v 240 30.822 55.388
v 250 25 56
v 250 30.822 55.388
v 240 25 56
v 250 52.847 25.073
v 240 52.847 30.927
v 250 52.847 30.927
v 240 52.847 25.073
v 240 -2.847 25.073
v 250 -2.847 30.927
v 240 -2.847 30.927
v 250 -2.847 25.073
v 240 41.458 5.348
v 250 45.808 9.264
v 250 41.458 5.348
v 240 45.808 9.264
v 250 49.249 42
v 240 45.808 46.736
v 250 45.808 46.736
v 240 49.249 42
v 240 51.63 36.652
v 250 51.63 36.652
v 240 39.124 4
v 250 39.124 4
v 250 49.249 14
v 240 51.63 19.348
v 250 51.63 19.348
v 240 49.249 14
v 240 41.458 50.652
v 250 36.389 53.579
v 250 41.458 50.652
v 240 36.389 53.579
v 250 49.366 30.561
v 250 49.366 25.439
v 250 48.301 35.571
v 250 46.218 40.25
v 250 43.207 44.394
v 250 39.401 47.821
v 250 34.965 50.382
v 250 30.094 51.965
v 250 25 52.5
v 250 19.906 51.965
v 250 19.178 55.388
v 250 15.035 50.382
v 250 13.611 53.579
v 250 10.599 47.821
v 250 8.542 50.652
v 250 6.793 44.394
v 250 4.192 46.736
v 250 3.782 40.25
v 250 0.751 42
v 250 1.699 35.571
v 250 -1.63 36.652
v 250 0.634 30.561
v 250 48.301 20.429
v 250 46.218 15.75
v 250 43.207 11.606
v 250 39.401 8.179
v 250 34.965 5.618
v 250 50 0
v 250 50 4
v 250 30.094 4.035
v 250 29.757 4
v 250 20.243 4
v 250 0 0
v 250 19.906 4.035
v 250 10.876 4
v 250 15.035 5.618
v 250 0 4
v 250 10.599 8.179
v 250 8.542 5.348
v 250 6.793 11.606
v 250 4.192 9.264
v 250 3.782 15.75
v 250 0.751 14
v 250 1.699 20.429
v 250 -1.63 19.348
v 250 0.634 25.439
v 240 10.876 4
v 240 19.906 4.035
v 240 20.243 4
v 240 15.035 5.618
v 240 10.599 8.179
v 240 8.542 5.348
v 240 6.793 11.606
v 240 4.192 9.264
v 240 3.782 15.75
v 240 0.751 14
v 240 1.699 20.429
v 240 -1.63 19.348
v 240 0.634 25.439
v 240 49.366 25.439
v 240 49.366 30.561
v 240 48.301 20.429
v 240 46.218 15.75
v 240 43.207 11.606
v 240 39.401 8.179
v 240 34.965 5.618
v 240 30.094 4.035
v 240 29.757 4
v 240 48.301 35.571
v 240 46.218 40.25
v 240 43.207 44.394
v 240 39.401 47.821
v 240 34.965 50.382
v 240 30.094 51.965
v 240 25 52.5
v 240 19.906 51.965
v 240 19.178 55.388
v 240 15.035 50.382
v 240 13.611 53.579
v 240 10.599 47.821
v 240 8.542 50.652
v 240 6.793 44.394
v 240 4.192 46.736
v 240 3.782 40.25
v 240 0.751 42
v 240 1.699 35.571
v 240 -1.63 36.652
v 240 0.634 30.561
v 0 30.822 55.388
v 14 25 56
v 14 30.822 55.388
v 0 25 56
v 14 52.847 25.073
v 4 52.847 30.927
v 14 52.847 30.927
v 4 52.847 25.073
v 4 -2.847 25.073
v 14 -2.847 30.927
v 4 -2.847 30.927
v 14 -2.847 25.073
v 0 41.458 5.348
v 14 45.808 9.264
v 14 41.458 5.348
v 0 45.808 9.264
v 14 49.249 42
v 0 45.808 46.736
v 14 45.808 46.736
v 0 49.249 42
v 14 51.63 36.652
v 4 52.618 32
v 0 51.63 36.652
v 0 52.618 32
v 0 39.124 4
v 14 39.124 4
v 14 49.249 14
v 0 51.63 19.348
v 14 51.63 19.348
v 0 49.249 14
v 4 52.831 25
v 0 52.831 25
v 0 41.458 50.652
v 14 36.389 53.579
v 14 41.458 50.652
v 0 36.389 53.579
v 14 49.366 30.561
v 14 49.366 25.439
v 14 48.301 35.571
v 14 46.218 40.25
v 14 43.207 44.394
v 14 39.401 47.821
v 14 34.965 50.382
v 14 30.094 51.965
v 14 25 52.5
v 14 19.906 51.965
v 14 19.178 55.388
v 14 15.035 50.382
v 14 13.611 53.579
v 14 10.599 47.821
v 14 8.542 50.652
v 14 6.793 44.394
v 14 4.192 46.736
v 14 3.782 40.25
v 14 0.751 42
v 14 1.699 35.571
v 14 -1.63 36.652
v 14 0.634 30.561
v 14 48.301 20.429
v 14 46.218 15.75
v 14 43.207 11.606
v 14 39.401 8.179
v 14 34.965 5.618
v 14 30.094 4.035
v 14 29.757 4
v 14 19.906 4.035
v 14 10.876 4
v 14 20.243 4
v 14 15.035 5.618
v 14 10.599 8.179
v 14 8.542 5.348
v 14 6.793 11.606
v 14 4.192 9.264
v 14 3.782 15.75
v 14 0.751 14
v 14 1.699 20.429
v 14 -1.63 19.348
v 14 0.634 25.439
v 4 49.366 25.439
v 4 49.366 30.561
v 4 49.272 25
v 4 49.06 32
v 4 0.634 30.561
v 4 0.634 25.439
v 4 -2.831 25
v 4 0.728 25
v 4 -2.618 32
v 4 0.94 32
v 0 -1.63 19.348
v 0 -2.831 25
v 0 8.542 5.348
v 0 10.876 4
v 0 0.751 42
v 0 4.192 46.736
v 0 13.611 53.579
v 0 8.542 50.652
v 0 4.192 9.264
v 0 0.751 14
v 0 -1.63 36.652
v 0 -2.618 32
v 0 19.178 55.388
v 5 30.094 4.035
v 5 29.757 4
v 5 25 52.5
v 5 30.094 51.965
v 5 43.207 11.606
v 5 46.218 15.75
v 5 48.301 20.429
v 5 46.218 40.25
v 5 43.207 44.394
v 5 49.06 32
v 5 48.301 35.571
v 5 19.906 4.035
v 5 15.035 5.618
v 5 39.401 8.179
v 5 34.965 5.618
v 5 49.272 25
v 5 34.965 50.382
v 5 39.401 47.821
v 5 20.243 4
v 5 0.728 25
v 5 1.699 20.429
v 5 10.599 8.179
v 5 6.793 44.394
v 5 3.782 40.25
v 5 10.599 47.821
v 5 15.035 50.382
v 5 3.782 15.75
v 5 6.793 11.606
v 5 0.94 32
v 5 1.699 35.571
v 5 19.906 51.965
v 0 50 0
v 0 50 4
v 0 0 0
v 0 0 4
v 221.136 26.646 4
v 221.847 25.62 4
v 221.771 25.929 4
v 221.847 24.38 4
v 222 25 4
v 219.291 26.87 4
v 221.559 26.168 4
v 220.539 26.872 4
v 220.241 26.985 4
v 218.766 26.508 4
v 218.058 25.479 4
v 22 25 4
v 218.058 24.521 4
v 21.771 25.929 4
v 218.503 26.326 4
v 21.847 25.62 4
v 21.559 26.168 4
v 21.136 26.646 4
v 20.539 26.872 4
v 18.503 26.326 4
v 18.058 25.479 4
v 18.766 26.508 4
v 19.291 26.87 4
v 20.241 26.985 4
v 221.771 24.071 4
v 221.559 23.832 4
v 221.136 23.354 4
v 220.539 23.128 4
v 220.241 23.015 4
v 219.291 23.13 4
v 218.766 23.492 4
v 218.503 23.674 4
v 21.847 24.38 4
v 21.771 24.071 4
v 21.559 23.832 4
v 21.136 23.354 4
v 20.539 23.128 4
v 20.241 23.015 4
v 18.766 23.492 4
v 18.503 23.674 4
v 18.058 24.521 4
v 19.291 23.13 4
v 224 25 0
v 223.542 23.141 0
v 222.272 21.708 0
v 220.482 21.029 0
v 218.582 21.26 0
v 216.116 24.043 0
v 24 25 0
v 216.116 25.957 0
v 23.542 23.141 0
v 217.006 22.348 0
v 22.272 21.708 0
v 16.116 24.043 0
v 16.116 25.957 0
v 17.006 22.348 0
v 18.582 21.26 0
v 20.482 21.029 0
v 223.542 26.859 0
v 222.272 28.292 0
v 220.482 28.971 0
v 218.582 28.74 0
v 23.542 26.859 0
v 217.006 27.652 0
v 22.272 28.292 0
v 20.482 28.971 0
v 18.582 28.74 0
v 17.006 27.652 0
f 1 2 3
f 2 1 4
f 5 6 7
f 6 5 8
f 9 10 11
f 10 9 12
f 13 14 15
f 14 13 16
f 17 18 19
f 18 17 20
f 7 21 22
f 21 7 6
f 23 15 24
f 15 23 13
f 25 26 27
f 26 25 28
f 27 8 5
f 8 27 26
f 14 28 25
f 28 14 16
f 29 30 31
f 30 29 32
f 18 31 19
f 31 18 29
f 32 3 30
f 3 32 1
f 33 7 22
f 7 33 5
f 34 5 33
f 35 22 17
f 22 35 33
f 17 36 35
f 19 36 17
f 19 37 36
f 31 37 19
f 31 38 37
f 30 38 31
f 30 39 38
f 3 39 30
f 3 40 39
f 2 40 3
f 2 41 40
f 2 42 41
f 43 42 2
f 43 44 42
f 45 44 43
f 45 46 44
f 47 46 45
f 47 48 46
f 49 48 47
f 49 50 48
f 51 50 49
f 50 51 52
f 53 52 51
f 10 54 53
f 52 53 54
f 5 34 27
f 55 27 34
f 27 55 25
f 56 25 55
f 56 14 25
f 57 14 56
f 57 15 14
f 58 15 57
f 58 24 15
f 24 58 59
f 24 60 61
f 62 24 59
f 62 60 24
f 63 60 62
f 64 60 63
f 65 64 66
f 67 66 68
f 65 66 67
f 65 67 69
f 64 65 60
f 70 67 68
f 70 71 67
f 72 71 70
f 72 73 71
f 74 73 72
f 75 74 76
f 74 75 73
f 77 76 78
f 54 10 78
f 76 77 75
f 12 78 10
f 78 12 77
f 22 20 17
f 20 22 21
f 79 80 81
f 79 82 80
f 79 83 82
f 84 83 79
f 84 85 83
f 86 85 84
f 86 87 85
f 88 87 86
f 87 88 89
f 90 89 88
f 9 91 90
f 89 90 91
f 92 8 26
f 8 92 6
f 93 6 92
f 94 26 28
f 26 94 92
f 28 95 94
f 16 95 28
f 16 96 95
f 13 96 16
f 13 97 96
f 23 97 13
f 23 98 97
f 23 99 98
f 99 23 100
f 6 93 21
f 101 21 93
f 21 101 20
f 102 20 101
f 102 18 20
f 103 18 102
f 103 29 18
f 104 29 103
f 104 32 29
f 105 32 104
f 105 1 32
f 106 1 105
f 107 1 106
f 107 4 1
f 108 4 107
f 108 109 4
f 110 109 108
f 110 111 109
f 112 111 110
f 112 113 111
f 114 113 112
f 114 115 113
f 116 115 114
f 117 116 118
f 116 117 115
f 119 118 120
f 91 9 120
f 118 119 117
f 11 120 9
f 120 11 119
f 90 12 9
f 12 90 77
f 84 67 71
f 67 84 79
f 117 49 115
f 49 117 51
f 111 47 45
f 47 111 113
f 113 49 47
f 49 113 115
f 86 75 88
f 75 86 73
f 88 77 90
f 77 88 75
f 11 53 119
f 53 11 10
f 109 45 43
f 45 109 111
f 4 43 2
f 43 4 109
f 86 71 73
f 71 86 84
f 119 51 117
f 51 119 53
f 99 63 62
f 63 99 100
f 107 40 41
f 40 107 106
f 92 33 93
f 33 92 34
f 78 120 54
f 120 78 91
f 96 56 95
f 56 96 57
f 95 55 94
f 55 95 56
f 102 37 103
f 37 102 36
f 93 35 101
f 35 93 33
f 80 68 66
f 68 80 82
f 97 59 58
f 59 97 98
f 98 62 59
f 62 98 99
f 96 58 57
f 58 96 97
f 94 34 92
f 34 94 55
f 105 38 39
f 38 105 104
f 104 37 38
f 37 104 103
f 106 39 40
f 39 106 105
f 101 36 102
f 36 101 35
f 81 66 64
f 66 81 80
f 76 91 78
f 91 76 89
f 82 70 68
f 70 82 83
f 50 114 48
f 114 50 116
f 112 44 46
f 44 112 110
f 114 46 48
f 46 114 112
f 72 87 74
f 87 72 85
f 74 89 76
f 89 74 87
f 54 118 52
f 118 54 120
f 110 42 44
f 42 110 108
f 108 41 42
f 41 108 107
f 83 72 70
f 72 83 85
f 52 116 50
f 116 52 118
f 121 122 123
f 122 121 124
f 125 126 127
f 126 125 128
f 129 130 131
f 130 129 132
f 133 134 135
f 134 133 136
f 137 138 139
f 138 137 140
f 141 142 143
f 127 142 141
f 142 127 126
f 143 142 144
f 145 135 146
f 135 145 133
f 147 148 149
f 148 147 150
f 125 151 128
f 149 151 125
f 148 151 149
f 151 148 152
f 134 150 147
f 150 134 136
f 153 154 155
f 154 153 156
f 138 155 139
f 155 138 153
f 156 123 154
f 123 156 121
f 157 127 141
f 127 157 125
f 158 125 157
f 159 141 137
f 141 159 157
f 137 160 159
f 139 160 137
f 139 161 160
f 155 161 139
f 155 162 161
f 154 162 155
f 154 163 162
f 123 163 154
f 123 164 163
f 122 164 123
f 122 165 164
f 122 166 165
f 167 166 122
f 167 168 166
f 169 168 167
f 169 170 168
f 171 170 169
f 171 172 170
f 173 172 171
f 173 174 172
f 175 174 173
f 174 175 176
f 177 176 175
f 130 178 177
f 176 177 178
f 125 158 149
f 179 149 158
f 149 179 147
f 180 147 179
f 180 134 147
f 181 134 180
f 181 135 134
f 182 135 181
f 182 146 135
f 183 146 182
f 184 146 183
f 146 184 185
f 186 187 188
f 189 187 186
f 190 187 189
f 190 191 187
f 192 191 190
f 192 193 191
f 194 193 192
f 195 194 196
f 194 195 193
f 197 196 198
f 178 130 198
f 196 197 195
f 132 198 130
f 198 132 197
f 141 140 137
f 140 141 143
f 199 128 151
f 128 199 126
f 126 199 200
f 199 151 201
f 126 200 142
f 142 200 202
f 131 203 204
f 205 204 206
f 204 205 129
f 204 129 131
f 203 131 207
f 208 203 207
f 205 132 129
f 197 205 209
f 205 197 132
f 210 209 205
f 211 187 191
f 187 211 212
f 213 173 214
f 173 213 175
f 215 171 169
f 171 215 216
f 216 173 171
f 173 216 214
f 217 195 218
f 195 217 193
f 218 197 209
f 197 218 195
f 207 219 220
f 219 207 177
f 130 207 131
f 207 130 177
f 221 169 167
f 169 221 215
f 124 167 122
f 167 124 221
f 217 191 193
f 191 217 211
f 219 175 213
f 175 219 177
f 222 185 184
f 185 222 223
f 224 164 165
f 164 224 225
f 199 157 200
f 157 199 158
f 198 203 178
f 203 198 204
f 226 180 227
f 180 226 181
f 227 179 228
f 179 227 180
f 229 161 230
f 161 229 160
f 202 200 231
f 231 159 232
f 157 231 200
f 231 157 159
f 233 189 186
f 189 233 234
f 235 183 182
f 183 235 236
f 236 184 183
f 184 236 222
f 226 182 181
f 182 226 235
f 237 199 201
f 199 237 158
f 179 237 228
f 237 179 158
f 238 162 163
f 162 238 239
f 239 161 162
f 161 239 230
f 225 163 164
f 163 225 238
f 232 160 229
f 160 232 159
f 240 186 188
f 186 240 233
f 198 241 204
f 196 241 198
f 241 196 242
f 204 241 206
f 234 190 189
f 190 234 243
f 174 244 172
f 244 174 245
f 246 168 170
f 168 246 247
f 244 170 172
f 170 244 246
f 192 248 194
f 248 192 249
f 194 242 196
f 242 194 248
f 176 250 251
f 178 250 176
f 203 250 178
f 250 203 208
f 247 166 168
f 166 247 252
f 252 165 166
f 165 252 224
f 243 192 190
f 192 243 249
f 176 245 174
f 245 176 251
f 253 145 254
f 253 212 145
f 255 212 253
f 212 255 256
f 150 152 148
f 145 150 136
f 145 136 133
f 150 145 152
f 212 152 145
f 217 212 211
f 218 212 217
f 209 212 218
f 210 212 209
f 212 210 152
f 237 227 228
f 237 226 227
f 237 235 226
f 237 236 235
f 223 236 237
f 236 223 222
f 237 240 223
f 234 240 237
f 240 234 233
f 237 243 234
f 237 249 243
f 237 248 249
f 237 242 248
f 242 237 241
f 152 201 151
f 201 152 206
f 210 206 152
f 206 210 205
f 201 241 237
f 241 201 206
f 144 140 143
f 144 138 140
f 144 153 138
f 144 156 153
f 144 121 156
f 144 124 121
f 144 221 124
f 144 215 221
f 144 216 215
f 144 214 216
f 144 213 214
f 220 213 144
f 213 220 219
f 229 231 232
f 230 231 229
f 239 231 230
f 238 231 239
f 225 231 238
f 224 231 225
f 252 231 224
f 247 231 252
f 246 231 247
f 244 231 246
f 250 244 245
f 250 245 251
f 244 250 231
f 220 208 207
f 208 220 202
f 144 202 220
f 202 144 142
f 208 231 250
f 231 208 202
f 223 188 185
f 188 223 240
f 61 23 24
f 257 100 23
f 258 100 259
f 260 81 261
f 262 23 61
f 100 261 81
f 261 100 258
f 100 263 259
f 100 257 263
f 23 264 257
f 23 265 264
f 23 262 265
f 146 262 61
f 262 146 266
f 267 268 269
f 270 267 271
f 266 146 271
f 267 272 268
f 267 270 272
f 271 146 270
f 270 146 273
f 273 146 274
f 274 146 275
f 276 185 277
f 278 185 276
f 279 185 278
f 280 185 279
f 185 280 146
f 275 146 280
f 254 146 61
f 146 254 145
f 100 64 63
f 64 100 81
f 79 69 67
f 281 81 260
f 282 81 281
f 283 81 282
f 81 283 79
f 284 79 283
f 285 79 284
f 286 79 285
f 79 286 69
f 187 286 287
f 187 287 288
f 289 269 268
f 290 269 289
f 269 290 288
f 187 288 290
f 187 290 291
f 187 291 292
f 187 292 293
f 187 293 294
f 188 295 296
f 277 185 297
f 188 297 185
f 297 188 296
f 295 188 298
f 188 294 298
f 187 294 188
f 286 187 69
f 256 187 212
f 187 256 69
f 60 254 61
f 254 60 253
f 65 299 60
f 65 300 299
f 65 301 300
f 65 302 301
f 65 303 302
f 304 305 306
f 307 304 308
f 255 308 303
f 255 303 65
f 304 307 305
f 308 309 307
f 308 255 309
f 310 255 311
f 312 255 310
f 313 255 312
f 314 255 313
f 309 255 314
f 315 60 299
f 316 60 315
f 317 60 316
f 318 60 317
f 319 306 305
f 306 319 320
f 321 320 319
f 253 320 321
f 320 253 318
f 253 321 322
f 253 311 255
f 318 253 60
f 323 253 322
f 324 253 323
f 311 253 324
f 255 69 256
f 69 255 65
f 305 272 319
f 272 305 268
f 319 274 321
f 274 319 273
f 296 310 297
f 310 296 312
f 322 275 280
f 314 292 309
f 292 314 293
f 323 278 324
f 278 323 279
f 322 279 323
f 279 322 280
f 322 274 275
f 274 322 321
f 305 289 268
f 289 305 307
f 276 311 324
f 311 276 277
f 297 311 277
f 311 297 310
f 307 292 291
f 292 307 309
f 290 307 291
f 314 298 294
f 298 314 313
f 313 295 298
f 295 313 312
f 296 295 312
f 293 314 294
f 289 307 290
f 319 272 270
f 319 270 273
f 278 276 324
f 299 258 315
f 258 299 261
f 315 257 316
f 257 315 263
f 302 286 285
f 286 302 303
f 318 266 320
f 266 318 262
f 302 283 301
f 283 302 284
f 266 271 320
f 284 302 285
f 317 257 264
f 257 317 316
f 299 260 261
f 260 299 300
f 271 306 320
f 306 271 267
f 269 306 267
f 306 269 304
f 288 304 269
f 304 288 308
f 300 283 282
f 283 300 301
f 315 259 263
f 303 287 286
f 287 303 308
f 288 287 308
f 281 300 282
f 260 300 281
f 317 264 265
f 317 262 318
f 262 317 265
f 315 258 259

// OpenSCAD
difference(){
cube([250,50,4],false);
    translate([20,25,0]){
cylinder(6,4,false);
    }
        translate([220,25,0]){
cylinder(6,4,false);
    }
}

translate([240, 25,28]){
    myring(49);
}

translate([4, 25,28]){
    myring(49);
}

difference(){
translate([0,56,0]){
rotate([90,00,]){
cube([5,25,60], false);
translate([0,32,0]) {
cube([5,25,60], false);
}
}
}
translate([-2,25,28]){
myring(56,30);
}
}

module myring (d, t=7) {
       rotate([0,90,0]) {
        difference(){
            cylinder(10,d=d+t,false);
            translate([0,0,-1]){
                cylinder(12,d=d,false);
            }
        }
    }
 
    
}
